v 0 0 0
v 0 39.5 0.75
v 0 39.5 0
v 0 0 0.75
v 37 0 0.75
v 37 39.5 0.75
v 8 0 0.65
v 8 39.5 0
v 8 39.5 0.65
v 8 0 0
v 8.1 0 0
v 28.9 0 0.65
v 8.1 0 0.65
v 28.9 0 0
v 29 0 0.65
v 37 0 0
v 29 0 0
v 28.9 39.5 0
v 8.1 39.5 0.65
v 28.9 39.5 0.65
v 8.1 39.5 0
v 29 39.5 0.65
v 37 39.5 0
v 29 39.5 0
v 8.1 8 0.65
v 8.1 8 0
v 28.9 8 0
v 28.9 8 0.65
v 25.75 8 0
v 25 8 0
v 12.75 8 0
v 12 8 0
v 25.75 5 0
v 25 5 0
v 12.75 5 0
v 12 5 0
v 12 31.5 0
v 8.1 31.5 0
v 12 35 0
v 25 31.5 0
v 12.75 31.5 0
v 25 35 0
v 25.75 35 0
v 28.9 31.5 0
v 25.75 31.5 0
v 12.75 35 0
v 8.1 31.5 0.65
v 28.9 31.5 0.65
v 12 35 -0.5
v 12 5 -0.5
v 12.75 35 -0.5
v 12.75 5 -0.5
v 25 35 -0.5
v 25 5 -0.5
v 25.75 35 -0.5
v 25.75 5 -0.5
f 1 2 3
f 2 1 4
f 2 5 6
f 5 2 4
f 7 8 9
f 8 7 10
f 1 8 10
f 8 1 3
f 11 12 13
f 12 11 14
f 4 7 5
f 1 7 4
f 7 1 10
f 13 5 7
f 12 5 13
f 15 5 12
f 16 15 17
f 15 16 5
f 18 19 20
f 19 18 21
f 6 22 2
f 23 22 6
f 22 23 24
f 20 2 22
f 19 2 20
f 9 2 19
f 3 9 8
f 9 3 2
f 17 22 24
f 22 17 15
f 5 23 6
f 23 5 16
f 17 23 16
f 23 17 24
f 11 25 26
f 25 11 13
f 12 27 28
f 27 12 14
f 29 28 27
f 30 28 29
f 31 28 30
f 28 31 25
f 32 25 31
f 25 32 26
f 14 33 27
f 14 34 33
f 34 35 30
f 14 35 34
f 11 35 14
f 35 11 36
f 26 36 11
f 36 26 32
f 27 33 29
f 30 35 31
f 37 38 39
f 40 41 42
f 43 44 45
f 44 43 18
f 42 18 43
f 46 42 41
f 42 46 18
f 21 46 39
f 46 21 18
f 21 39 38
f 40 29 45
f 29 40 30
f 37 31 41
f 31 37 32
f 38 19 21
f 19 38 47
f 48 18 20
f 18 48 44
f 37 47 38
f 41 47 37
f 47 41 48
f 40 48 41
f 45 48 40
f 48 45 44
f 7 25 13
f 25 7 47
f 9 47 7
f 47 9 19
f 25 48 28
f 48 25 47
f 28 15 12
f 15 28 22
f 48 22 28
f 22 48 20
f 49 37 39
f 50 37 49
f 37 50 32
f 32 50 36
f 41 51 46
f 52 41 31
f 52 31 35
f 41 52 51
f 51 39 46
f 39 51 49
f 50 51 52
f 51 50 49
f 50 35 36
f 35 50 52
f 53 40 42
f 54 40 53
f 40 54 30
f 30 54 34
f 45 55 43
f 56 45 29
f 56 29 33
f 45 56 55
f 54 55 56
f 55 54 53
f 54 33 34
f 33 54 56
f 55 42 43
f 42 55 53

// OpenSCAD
// The zero-plane is the top of the studs, the bottom of the subfloor

//translate([0, 0, 0])
//cube([37, 39.5, 0.75]);
e = 0.1;

// wood frame
translate([0, 0, 0]) cube([8, 39.5, 0.75]);
translate([29, 0, 0]) cube([8, 39.5, 0.75]);

translate([8+e, 0, 0]) cube([37-8-8-2*e, 8, 0.75]);
translate([8+e, 39.5-8, 0]) cube([37-8-8-2*e, 8, 0.75]);

// osb
//translate([8+e, 8+e, 0]) cube([37-8-8-2*e, 39.5-8-8-2*e, 0.75]);
// paper-thin layer to simulate that the OSB shouldn't be relied on for strength
translate([0, 0, 0.65]) cube([37, 39.5, 0.1]);

// shelving standards
translate([12, 5, -0.5]) cube([0.75, 30, 0.5]);
translate([25, 5, -0.5]) cube([0.75, 30, 0.5]);

// hinges
color([1, 0, 0]) translate([4.5, 0, 0]) rotate([90, 0, 90]) polygon([[0,0], [4.25, 0], [3, -1.75], [0, -2]]);
translate([14, 0, 0]) rotate([90, 0, 90]) polygon([[0,0], [4.25, 0], [3, -1.75], [0, -2]]);
translate([23, 0, 0]) rotate([90, 0, 90]) polygon([[0,0], [4.25, 0], [3, -1.75], [0, -2]]);
translate([32.5, 0, 0]) rotate([90, 0, 90]) polygon([[0,0], [4.25, 0], [3, -1.75], [0, -2]]);

/*
// pad
translate([1.5, 4.5, -2]) cube([34, 34, 1.25]);

// gas struts
translate([0.5, 29, -1.5])
rotate([85, 0, 0]) cylinder(18, 0.5, 0.5, $fn=36);

translate([36.5, 29, -1.5])
rotate([85, 0, 0]) cylinder(18, 0.5, 0.5, $fn=36);

*/
